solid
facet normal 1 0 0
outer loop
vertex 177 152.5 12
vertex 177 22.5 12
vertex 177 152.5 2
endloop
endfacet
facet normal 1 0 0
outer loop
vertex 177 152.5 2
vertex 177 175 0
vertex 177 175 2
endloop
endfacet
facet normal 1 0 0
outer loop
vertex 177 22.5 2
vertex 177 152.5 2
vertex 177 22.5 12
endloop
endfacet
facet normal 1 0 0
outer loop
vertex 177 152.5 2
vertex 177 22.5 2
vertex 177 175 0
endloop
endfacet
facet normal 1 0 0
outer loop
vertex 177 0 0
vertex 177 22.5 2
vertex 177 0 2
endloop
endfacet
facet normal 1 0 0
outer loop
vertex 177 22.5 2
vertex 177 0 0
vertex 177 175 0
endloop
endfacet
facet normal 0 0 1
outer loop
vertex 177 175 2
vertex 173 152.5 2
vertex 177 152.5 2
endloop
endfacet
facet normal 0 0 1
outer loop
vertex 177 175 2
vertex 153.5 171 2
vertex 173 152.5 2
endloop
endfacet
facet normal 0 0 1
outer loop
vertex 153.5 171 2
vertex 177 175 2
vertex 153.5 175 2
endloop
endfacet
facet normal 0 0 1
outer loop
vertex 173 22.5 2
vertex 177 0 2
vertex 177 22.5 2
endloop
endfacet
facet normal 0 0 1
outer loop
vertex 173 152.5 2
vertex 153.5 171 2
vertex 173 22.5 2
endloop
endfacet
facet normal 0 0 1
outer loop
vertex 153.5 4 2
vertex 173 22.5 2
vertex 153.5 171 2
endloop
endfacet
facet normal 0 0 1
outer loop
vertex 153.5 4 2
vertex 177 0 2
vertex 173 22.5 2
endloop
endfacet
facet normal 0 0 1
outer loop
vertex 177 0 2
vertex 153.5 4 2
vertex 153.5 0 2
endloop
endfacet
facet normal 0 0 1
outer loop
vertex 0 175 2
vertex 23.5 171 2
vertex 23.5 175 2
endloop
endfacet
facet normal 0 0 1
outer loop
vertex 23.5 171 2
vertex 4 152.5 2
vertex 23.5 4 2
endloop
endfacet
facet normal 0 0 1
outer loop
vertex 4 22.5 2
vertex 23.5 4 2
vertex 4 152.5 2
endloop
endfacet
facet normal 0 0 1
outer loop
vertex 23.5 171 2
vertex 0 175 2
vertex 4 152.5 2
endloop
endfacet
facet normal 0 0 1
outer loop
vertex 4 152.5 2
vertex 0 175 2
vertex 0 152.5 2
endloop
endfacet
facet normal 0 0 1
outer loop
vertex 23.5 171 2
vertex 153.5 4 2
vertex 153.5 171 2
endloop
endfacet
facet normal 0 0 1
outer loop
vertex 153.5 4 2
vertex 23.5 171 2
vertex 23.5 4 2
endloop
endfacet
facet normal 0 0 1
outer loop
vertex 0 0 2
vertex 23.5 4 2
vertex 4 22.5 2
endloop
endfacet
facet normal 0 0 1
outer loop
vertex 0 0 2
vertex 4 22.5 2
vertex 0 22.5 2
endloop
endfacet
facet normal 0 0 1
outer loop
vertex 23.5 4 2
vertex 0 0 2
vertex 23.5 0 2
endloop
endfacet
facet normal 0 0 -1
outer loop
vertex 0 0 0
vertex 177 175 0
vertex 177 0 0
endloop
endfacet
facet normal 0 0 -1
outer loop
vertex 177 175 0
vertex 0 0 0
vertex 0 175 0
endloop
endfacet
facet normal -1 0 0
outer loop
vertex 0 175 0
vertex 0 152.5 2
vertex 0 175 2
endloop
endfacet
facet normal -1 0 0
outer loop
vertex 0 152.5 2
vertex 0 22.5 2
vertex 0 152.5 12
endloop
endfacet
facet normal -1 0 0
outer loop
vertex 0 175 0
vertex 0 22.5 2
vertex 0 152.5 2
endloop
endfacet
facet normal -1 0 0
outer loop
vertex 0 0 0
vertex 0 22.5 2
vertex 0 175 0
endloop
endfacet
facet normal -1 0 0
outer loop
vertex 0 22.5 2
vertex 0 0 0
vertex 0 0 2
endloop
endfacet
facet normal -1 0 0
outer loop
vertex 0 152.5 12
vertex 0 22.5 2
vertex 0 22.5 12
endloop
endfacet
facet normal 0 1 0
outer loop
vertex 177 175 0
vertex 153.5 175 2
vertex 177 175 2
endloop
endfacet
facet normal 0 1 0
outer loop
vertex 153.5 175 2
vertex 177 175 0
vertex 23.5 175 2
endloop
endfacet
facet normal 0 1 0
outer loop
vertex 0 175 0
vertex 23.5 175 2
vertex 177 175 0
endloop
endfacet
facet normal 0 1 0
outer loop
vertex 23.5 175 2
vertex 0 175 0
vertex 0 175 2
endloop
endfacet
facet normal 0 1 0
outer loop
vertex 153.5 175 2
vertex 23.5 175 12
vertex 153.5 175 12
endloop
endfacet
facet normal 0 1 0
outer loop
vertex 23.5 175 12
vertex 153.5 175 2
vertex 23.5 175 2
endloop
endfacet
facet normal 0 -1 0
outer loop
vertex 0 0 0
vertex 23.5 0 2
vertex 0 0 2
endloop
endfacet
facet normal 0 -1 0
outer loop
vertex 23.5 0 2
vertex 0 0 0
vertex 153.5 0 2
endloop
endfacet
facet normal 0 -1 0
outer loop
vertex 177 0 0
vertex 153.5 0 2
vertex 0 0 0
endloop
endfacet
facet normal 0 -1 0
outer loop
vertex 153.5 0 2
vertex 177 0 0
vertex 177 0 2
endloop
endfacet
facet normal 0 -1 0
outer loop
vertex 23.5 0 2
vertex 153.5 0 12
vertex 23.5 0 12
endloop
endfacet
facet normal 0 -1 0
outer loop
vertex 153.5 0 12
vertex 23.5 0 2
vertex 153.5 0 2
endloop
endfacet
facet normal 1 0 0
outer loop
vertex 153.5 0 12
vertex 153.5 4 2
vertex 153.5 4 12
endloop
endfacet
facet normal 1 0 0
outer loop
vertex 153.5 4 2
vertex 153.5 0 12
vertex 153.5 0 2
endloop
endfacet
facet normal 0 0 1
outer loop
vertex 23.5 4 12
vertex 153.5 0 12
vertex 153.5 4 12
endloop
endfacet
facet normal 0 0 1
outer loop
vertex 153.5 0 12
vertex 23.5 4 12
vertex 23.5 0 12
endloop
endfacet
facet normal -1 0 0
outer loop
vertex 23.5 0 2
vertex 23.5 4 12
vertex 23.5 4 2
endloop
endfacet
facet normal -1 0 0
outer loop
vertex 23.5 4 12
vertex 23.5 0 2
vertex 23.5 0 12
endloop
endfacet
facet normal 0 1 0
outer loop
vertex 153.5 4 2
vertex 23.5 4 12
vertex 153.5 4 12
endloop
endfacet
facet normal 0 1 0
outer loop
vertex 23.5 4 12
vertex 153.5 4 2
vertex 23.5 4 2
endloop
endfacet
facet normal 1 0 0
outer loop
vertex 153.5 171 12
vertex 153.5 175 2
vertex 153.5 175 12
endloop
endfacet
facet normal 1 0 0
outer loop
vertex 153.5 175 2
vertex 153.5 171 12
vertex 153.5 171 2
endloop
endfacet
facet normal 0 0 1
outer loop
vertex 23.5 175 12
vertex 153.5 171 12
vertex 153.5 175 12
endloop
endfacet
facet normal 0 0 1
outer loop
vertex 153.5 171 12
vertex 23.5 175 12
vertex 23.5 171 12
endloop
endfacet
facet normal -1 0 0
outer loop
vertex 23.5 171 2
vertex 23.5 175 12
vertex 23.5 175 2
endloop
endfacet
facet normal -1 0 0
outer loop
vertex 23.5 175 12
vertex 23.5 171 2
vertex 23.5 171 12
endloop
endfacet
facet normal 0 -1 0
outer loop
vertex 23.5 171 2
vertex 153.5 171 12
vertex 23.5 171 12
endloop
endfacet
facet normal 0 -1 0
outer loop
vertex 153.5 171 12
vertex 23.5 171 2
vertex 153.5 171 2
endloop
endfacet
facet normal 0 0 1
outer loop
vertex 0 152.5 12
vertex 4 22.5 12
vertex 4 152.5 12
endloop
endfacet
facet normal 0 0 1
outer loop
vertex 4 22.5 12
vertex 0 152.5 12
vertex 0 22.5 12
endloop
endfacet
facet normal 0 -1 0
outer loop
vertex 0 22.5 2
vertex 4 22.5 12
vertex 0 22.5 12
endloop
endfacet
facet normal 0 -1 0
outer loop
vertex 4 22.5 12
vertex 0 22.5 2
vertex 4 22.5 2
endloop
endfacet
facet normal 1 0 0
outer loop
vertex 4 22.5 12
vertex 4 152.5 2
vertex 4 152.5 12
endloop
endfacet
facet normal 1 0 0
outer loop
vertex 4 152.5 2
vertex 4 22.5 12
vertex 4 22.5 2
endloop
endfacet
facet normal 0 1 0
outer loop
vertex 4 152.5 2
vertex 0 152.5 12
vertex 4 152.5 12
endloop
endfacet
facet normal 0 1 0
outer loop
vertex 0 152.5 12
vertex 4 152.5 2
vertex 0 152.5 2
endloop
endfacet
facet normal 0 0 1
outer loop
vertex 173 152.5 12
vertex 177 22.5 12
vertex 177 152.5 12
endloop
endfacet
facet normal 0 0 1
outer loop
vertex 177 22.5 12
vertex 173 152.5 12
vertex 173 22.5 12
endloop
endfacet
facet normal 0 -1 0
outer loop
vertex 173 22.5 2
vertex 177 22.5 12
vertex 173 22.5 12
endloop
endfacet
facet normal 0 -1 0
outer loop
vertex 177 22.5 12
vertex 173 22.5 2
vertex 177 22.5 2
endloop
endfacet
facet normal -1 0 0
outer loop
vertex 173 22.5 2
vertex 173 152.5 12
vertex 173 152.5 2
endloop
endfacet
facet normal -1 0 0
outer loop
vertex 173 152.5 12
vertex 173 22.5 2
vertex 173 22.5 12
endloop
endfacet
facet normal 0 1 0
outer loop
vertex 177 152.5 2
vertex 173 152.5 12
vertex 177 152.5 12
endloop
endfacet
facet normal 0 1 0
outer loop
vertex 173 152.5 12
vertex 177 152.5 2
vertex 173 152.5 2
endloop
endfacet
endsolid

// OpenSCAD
//engraver stuff to mount the engraver to
//aim is to hold wooden credit card sized nfc cards in place under the engraver
//effectively this MAY turn into a modular rig to hold holders and the engraver in place

$fn=110;
wiggle=0.01;
wiggleZ=[0,0,wiggle];
holder = [130,4,10] ;
k6Out = [169,167,165] ; // see product specs
basePlate = [k6Out.x+holder.y*2, k6Out.y+holder.y*2, 2] ;
burnArea = [80,80,basePlate.z] + wiggleZ;
burnAreaOffset = [20,20,0] - wiggleZ/2;
card = [85.5,54,1.4] ;
//Base
difference(){
    cube(basePlate);
    *translate(burnAreaOffset)color("red")cube(burnArea);
}
//Tabs
translate([basePlate.x/2-holder.x/2, 0, basePlate.z]) cube(holder);
translate([basePlate.x/2-holder.x/2, basePlate.y-holder.y, basePlate.z]) cube(holder);
translate([holder.y,basePlate.y/2-holder.x/2,basePlate.z]) rotate([0, 0, 90]) cube(holder);
translate([basePlate.x,basePlate.y/2-holder.x/2,basePlate.z]) rotate([0, 0, 90]) cube(holder);
//engraver
*translate(basePlate/2-k6Out/2+[0,0,basePlate.z/2+k6Out.z/2]) cube(k6Out);

//Card
*translate(burnAreaOffset - [-(burnArea.x-card.x)/2,(-burnArea.y+card.y)/2,0] + [0,0,basePlate.z+10]) color("green") cube(card);
